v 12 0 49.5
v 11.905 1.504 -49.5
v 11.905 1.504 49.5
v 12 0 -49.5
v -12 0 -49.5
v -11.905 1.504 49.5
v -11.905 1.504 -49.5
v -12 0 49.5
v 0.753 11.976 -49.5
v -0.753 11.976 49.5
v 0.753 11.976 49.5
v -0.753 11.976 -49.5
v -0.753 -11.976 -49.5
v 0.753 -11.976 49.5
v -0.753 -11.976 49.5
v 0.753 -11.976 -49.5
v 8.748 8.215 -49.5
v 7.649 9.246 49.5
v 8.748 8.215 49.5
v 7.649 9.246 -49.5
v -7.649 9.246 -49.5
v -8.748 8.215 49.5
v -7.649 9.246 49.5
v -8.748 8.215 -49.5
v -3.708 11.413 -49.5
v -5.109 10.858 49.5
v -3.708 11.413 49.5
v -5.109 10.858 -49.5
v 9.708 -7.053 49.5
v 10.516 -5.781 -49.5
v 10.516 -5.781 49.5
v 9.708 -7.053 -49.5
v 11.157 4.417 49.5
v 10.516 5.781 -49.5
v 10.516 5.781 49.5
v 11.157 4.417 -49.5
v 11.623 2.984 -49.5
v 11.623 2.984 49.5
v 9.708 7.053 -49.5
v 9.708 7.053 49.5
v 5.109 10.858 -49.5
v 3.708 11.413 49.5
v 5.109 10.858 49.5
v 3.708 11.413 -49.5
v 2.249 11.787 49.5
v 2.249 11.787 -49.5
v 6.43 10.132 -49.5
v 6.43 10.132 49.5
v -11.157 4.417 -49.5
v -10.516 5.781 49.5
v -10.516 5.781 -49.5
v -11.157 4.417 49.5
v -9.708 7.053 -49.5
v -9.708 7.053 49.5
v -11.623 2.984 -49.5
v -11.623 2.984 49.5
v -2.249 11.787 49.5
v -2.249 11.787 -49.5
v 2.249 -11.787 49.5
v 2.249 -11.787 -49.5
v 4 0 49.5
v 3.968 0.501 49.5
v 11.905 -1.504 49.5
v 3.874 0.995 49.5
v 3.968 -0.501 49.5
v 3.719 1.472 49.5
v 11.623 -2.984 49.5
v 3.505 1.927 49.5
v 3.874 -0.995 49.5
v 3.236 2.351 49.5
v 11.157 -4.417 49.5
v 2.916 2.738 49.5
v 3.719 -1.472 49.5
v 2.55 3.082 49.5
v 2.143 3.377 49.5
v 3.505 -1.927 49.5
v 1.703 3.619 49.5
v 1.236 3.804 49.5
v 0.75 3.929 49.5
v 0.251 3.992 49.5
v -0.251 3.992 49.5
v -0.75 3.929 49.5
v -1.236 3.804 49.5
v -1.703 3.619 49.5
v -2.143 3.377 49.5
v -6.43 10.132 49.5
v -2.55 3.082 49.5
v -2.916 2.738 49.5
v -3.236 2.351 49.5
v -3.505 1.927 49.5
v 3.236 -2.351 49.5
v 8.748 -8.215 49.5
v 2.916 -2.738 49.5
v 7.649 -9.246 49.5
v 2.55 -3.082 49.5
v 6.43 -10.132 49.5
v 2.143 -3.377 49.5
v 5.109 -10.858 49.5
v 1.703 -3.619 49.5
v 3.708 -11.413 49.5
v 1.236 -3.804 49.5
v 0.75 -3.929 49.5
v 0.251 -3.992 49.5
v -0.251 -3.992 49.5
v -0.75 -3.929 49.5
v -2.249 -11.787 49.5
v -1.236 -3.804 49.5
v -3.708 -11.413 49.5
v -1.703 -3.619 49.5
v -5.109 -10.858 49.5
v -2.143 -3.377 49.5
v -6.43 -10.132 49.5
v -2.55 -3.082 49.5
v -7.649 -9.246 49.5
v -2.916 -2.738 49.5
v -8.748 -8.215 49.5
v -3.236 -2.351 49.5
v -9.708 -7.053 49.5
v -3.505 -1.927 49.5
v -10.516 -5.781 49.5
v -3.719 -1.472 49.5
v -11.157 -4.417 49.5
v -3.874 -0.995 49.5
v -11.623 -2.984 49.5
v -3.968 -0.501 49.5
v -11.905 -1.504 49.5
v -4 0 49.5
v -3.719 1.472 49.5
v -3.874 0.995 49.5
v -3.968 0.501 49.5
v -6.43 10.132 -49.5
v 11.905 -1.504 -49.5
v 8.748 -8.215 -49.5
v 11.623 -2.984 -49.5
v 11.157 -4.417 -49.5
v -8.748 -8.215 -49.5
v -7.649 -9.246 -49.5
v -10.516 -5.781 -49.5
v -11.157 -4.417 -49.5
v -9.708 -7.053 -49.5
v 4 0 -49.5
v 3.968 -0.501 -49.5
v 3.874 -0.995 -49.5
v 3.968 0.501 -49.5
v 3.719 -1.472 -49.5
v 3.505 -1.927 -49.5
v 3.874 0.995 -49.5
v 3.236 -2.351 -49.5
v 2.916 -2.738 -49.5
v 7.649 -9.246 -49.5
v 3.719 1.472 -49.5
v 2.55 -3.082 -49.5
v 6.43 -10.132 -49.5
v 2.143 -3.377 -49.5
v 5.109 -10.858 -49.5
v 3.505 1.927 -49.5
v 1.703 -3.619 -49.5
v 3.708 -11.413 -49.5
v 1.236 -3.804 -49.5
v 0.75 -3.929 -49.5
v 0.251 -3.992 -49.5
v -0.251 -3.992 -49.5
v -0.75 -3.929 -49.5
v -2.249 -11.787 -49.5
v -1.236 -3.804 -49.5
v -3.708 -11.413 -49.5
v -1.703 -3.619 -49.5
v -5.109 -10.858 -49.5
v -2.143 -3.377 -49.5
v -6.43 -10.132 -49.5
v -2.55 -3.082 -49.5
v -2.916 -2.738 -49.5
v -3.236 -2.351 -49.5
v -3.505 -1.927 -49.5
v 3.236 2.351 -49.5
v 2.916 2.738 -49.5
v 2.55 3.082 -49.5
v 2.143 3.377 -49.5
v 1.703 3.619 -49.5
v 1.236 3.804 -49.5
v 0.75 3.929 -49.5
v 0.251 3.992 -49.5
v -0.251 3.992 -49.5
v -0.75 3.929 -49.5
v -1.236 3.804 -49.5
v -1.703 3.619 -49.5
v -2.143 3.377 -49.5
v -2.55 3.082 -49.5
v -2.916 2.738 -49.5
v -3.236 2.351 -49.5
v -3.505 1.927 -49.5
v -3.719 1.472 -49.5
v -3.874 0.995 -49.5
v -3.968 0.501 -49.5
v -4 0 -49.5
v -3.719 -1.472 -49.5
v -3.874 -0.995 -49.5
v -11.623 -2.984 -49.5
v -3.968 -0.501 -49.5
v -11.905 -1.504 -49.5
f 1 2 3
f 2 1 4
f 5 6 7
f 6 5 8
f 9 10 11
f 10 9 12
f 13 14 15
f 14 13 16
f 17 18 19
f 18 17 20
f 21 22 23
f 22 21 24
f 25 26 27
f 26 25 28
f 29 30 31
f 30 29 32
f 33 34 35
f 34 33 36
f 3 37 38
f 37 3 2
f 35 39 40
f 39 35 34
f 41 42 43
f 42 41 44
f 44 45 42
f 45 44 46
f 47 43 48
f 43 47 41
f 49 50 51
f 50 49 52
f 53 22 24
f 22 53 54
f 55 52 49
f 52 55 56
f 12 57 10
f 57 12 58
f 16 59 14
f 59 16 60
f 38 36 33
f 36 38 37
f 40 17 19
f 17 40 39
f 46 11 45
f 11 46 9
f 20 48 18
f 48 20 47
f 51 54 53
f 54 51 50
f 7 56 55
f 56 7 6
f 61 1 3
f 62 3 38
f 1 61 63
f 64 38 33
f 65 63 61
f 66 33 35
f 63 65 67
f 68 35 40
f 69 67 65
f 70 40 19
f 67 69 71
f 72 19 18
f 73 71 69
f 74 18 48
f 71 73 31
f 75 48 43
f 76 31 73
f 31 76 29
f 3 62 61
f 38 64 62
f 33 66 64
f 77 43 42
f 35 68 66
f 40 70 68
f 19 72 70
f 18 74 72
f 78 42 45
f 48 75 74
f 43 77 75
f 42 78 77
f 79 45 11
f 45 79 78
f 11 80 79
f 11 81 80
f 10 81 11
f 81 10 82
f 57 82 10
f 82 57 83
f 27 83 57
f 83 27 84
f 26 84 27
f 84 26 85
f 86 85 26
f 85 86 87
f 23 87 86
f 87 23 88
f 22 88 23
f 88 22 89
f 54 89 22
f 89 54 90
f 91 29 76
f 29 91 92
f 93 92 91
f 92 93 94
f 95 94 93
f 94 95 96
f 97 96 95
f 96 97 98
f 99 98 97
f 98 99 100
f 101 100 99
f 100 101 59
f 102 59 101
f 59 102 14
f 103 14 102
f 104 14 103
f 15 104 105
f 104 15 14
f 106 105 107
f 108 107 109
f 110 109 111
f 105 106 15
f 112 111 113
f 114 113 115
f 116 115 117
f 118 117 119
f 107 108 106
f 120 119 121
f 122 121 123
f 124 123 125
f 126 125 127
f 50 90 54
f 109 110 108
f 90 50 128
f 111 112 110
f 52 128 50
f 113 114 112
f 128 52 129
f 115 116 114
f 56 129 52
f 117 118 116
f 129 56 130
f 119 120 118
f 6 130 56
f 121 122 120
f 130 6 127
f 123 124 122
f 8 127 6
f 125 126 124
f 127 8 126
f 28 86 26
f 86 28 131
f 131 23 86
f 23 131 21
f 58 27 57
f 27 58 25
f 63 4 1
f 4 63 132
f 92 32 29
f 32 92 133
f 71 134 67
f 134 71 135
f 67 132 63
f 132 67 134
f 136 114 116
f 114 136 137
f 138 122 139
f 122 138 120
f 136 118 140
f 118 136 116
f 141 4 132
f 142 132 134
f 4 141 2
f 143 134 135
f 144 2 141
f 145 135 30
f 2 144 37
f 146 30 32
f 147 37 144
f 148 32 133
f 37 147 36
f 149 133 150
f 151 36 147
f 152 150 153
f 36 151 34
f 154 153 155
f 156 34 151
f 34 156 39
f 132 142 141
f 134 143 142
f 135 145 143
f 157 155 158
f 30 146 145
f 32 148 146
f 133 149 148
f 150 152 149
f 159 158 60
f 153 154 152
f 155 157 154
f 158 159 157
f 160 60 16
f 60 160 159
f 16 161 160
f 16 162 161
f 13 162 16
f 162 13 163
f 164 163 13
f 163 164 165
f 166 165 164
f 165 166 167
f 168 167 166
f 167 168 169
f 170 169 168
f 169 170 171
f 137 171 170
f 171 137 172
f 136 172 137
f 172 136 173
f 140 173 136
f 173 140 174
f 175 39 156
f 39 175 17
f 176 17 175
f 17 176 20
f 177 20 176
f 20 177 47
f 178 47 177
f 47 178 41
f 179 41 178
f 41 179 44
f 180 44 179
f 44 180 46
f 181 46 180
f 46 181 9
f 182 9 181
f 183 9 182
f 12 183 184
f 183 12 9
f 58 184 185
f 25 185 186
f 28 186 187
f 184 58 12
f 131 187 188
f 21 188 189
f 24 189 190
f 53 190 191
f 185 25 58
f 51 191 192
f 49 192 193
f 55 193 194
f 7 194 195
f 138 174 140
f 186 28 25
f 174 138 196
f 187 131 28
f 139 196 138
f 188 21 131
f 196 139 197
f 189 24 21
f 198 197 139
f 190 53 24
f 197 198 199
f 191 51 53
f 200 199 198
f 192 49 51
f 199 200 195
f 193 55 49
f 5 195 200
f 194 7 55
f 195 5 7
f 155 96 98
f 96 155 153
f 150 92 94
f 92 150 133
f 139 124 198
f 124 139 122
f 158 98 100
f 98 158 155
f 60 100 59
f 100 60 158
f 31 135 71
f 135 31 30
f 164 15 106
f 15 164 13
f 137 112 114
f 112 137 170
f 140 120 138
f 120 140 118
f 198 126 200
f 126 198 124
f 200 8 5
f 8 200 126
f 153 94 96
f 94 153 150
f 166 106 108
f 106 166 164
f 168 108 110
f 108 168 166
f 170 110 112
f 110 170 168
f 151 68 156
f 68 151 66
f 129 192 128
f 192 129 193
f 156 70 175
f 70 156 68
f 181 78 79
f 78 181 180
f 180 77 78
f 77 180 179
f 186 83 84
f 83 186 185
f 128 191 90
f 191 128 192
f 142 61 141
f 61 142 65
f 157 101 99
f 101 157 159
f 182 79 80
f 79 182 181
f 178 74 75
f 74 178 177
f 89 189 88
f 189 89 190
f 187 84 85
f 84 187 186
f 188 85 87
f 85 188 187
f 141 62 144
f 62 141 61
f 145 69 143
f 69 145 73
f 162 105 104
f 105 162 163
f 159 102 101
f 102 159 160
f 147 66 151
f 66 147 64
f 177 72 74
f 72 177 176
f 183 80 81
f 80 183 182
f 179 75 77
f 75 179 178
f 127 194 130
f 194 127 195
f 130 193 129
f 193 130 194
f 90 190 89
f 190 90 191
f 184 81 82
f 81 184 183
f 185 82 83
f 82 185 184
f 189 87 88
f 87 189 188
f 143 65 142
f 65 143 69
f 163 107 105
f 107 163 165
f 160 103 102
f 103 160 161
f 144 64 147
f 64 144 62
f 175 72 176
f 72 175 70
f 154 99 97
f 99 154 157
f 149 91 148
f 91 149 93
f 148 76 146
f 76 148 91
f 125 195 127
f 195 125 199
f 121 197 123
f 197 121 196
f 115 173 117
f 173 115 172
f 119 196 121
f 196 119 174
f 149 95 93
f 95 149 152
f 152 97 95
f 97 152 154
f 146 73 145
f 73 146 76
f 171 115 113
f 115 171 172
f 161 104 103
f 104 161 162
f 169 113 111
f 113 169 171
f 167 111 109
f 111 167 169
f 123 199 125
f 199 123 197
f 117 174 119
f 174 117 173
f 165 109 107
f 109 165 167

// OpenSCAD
$fn = 50;


difference() {
	union() {
		translate(v = [0, 0, -49.5000000000]) {
			cylinder(h = 99, r = 12.0000000000);
		}
	}
	union() {
		translate(v = [0, 0, -100.0000000000]) {
			cylinder(h = 200, r = 4);
		}
	}
}
